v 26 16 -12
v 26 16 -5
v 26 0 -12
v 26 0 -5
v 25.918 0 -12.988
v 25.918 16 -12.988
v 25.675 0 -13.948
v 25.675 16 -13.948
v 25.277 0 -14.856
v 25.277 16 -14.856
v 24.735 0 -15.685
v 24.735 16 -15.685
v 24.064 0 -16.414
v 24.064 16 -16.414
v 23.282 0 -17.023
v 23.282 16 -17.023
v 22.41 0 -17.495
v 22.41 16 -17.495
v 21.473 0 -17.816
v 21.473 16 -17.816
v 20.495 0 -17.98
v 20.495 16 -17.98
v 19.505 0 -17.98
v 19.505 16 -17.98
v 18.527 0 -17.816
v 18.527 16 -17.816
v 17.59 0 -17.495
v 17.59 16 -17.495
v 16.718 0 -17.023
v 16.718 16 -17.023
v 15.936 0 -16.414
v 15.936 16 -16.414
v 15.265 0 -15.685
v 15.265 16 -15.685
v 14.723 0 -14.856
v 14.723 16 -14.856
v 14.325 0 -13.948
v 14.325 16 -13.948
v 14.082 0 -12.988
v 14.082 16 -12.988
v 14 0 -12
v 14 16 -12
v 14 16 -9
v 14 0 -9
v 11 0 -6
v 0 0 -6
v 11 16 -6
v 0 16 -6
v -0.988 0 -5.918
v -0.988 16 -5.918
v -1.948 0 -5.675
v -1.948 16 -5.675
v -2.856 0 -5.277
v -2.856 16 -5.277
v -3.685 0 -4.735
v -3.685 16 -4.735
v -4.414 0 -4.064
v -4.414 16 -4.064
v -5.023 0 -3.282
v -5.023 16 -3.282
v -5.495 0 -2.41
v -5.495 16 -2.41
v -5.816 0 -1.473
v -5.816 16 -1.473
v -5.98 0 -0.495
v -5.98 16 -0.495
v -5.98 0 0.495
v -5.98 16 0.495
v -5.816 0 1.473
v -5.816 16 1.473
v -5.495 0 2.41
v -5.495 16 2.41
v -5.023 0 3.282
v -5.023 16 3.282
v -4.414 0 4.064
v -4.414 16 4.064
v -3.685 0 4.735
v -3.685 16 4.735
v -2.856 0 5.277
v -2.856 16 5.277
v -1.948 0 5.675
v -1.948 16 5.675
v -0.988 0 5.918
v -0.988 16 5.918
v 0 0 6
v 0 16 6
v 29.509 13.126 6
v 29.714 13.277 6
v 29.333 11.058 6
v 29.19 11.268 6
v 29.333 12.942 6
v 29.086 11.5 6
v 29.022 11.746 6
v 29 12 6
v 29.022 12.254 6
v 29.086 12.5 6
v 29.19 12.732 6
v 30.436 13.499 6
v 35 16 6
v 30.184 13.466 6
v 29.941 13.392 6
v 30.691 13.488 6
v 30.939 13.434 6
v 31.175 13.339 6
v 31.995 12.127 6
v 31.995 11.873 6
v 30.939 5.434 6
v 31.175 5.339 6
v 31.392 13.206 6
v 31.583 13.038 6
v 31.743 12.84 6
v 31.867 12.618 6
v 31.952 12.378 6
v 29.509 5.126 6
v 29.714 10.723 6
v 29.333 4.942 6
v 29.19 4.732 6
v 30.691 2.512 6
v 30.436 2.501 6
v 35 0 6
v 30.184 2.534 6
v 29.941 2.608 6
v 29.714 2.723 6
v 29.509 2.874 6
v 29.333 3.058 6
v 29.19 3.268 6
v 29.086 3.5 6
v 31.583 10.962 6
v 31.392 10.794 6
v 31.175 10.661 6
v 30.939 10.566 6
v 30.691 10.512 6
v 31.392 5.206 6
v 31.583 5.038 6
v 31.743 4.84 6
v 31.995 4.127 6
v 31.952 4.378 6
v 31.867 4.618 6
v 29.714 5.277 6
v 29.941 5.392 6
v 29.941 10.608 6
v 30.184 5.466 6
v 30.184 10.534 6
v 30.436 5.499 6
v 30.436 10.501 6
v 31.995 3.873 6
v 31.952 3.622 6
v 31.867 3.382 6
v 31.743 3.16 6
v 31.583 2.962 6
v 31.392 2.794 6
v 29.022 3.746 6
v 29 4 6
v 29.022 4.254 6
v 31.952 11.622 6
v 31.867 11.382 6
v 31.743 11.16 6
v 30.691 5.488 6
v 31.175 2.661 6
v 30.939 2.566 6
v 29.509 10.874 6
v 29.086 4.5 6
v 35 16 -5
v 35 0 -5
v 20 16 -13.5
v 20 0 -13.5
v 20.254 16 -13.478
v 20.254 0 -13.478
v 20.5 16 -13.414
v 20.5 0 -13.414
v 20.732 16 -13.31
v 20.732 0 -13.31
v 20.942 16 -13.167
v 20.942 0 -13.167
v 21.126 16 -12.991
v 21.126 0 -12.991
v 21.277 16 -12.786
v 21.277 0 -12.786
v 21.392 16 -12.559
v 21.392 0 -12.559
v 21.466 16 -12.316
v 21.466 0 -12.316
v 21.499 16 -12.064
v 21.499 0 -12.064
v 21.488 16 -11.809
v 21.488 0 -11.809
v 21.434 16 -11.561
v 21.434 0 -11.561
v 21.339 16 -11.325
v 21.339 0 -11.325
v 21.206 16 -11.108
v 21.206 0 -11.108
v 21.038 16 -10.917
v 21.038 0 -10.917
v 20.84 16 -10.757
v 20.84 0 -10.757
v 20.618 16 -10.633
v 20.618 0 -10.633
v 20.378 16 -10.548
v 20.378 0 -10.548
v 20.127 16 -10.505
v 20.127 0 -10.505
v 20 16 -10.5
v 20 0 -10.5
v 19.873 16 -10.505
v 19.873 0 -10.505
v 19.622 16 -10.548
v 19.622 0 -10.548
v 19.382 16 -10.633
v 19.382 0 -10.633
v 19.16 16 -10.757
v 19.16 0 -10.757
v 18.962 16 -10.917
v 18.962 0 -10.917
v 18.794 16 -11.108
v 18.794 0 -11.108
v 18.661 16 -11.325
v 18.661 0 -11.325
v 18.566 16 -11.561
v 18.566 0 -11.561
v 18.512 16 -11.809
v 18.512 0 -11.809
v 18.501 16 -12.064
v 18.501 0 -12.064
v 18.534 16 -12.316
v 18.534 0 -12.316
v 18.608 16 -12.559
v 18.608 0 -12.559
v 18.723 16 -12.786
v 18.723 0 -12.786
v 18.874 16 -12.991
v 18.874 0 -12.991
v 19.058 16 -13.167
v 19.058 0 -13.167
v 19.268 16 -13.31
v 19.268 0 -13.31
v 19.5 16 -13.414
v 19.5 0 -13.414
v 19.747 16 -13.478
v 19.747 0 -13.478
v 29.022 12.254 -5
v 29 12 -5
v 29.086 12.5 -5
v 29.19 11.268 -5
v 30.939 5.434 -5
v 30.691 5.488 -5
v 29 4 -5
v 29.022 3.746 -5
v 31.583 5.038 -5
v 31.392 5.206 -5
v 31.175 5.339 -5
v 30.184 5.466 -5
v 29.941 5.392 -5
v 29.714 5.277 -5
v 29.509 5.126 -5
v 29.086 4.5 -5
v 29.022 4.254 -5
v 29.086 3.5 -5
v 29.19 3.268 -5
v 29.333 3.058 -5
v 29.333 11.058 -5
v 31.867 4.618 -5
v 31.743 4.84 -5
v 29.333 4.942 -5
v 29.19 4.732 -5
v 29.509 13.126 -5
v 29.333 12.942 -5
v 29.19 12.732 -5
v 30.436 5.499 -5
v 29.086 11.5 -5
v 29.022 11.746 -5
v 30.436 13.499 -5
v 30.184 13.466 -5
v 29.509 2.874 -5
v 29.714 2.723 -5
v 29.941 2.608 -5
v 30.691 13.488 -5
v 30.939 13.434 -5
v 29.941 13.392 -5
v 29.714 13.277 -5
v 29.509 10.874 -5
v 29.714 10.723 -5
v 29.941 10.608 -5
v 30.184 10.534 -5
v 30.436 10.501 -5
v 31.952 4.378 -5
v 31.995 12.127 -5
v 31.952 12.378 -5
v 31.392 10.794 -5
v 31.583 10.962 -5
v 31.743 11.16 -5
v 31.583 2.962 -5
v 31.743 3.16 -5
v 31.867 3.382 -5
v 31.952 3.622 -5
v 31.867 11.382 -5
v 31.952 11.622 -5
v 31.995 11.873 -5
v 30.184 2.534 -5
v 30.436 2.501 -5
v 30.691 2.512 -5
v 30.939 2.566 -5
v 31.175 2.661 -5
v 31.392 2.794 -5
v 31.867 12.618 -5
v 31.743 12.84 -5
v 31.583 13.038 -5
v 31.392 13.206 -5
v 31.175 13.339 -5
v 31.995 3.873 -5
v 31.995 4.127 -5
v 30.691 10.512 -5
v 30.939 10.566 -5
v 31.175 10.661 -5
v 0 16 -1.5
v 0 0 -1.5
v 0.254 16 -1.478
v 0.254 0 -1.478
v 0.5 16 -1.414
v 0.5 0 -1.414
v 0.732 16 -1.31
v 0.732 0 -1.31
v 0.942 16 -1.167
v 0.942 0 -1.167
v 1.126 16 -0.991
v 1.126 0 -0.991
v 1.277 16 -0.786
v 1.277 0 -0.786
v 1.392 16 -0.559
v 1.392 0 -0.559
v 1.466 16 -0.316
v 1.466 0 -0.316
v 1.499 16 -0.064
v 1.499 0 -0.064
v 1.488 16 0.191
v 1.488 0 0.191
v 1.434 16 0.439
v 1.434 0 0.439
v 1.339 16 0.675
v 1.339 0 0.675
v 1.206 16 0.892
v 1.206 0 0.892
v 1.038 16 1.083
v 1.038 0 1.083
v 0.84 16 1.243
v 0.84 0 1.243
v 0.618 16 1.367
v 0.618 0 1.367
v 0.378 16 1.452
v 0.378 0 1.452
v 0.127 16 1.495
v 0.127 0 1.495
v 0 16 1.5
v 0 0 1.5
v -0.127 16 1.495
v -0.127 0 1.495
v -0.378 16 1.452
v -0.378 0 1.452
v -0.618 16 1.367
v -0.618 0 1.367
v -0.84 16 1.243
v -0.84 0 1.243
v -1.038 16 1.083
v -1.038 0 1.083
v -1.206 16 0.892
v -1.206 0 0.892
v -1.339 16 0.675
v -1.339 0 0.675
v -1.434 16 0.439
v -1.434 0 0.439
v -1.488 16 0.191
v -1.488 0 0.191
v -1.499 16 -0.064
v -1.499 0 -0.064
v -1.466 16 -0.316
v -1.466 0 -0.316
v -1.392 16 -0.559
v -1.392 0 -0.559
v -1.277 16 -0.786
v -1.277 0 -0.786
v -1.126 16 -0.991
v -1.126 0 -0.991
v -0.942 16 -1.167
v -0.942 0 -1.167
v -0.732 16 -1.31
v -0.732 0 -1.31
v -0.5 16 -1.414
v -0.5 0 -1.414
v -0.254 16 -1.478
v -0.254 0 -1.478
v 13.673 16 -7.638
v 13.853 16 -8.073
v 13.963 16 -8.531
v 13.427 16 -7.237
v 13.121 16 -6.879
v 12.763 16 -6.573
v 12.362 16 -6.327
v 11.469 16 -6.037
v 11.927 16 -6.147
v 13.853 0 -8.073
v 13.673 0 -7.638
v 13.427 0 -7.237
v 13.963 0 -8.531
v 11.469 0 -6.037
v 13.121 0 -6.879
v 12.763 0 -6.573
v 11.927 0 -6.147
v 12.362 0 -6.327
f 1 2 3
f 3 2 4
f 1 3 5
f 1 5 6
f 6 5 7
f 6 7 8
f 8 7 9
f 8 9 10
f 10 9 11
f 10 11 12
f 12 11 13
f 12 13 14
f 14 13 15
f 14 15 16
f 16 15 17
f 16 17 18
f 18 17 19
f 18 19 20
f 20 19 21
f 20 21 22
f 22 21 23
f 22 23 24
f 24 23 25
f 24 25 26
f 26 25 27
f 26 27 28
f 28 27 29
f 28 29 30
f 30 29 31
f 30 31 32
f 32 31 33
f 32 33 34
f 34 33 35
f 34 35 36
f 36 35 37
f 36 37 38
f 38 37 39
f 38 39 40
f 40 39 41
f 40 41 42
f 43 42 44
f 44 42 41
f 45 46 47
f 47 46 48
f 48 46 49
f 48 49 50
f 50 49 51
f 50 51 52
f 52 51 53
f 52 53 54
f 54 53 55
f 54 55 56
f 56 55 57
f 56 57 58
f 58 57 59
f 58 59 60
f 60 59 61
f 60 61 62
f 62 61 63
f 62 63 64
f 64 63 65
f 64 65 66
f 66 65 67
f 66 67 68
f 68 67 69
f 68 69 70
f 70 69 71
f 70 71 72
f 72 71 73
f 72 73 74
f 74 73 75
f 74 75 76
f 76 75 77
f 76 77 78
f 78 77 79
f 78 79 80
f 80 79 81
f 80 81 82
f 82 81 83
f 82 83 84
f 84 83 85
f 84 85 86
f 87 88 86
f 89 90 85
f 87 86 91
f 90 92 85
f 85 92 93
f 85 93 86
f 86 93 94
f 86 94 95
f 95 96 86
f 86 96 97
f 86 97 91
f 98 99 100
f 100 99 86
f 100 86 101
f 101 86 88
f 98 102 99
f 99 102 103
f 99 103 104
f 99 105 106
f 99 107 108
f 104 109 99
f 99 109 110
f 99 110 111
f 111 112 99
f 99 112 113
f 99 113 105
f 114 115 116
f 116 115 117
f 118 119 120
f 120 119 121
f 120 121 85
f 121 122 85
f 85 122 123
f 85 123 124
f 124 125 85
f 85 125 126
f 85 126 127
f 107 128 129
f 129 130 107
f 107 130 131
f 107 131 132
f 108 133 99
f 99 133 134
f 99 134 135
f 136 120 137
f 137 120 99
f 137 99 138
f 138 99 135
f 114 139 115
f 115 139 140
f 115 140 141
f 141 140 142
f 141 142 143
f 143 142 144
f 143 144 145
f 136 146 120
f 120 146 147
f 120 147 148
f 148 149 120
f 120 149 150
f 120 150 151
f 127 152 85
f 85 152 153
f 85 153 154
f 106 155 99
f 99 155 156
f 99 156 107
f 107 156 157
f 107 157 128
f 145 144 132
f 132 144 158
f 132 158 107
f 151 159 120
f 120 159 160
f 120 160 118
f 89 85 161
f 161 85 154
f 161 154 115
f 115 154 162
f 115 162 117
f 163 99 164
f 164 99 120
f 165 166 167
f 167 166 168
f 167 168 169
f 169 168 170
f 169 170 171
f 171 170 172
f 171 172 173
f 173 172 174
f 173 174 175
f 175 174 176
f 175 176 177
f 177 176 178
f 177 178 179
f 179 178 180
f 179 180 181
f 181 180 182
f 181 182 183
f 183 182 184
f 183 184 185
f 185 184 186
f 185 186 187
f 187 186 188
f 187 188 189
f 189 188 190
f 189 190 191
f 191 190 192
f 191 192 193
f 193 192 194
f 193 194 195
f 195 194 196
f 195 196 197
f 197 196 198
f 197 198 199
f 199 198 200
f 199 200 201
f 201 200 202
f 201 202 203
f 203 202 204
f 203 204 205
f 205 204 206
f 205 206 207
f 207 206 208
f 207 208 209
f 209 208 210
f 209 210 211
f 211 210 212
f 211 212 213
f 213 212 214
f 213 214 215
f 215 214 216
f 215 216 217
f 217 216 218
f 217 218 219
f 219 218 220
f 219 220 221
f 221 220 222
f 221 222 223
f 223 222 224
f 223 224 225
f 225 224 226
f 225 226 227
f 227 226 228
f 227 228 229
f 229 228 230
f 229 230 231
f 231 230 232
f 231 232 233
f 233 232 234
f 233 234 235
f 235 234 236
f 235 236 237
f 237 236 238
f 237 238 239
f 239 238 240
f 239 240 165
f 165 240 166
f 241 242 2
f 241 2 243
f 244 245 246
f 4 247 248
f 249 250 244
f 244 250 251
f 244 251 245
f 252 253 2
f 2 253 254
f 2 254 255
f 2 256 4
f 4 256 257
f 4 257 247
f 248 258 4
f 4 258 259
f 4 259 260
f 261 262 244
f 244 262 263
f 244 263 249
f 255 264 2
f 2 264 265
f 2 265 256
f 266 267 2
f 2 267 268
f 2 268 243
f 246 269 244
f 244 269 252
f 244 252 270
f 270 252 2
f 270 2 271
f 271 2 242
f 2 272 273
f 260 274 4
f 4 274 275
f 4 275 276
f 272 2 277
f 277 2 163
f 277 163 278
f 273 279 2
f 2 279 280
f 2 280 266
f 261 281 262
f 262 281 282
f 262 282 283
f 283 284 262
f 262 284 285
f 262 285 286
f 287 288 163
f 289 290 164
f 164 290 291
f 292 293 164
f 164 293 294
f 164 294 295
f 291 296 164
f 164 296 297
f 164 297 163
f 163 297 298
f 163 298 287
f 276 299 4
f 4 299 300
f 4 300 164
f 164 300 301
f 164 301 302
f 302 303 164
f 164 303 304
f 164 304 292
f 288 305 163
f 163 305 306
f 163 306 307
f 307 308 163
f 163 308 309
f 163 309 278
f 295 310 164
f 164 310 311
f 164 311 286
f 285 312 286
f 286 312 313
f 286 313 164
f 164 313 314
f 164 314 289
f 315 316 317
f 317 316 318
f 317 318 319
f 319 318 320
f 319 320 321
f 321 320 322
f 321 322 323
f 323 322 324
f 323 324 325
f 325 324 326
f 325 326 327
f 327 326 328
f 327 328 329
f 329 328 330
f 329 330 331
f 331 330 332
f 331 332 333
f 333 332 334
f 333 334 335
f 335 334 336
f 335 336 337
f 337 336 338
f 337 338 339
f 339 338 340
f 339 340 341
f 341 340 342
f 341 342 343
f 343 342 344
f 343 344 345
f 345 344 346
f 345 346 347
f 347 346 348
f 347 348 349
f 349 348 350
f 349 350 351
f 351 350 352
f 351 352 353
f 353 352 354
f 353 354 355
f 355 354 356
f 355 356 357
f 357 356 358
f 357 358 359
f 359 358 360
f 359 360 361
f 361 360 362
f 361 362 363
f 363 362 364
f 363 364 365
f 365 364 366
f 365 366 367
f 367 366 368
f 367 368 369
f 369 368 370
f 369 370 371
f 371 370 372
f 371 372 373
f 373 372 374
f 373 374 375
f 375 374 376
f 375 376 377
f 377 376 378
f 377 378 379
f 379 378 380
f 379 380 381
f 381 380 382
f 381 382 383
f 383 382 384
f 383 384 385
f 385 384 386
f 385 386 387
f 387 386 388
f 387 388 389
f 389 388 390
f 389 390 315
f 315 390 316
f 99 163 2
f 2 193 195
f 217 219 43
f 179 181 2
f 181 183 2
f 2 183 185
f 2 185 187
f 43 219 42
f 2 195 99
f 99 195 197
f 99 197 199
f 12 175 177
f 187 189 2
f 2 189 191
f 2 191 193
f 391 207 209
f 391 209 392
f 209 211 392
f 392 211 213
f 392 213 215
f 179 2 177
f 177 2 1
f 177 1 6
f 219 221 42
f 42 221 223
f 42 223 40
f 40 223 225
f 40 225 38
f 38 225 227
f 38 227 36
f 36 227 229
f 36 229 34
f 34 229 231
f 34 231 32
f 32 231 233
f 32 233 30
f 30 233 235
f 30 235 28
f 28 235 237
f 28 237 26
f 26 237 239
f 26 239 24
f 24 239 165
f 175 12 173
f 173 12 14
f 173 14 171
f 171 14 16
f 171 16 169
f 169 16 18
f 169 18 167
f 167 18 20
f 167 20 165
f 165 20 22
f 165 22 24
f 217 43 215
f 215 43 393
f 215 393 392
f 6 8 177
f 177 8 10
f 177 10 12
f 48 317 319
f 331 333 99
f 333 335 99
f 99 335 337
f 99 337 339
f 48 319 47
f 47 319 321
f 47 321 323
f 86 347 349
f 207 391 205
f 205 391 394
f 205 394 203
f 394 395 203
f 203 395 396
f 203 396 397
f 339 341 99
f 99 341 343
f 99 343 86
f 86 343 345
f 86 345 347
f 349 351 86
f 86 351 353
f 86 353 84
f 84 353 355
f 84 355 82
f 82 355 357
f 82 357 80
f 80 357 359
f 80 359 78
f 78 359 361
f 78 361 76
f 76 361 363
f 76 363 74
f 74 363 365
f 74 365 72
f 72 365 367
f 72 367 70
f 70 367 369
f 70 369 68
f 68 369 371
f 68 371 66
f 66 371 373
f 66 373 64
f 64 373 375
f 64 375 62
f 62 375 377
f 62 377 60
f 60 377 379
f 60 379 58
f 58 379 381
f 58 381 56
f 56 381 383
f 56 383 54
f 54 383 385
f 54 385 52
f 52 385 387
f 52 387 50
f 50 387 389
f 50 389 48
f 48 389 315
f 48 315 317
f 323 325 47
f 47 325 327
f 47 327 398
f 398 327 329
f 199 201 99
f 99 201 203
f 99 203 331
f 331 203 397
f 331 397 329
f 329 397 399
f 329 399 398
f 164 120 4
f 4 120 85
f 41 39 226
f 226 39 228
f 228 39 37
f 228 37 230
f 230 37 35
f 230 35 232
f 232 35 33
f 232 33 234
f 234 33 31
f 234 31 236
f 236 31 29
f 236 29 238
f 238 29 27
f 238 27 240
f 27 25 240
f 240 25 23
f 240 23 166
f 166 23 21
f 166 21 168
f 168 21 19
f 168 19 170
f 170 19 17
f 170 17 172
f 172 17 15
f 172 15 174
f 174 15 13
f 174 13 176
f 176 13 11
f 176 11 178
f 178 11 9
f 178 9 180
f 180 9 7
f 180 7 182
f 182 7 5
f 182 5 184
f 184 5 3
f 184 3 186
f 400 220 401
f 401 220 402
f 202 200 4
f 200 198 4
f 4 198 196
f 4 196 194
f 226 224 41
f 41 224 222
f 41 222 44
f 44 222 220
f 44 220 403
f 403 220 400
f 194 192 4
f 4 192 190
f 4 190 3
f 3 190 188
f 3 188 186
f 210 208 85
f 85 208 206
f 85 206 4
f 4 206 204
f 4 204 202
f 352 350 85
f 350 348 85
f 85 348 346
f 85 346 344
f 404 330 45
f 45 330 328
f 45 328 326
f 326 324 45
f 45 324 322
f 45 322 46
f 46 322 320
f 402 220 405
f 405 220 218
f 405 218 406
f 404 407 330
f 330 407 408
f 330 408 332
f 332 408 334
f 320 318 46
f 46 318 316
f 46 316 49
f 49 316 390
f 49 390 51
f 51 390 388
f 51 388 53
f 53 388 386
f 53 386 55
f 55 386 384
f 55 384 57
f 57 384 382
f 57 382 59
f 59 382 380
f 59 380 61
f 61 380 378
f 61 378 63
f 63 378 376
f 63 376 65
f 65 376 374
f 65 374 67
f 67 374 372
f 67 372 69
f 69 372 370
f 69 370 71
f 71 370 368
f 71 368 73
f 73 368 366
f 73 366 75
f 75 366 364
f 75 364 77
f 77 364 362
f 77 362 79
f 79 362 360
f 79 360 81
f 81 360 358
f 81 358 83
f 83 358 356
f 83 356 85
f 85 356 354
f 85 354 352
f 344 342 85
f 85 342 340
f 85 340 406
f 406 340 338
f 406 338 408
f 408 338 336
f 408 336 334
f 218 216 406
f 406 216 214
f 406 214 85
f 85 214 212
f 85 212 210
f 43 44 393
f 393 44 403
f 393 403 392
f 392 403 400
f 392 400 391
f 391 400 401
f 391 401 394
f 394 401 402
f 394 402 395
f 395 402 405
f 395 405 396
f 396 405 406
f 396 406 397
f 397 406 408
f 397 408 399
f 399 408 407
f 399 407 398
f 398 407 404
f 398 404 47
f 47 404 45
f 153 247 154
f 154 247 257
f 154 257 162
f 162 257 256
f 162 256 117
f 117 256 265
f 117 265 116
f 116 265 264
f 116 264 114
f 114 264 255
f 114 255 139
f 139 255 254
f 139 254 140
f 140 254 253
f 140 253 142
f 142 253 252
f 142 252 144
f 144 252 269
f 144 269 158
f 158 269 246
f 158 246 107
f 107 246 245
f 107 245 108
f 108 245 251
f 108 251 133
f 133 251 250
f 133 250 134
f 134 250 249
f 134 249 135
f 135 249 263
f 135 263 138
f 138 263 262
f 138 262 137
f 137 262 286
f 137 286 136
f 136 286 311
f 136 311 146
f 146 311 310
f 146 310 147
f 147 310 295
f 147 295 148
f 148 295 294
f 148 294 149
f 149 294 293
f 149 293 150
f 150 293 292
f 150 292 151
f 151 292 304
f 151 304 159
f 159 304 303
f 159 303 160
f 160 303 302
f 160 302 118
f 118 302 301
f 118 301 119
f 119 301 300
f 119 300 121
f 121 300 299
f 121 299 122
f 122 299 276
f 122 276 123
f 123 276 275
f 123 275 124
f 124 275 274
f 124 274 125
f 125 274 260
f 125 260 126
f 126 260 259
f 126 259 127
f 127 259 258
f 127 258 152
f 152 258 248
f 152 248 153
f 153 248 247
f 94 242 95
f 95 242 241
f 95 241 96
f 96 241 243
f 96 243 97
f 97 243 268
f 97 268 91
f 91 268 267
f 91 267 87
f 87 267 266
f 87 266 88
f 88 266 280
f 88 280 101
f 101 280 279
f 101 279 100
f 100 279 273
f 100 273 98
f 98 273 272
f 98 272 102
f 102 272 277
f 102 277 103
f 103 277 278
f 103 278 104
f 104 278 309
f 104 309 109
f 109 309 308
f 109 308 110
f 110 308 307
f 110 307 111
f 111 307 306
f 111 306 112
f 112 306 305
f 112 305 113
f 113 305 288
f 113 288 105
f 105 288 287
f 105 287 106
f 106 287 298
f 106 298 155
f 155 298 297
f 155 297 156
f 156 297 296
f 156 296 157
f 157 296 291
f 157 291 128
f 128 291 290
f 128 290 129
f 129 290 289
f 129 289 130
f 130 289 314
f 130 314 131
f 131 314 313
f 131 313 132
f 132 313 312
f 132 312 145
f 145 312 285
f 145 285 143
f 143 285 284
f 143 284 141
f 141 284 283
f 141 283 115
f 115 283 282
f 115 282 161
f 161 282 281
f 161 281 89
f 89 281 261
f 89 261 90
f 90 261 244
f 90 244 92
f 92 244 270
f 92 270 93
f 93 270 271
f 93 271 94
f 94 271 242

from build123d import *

# Parameters (mm, degrees)
SKETCH3_R           = 6
SKETCH3_R_2         = 1.5
BOSS_EXTRUDE1_DEPTH = 16
FILLET1_R           = 3
SKETCH4_R           = 1.5
CUT_EXTRUDE1_DEPTH  = 41.620192023


with BuildPart() as part:
    # Sketch3 → Boss-Extrude1 (new body)
    # profile 1 of 5: a face of its own
    with BuildSketch(Plane(origin=(0, 0, 0), x_dir=(1, 0, 0), z_dir=(0, 1, 0))):
        with BuildLine():
            Line((14, 12), (14, 6))
            Line((14, 6), (20, 6))
            ThreePointArc((20, 6), (15.757359313, 7.757359313), (14, 12))
        make_face()
    # profile 2 of 5: a face of its own
    with BuildSketch(Plane(origin=(0, 0, 0), x_dir=(1, 0, 0), z_dir=(0, 1, 0))):
        with Locations((20, 12)):
            Circle(SKETCH3_R)
        with Locations(Location((20, 12, 0), (0, 0, 270))):
            Circle(SKETCH3_R_2, mode=Mode.SUBTRACT)
    # profile 3 of 5: a face of its own
    with BuildSketch(Plane(origin=(0, 0, 0), x_dir=(1, 0, 0), z_dir=(0, 1, 0))):
        with BuildLine():
            Line((14, 6), (0, 6))
            ThreePointArc((0, 6), (4.242640687, 4.242640687), (6, 0))
            ThreePointArc((6, 0), (4.242640687, -4.242640687), (0, -6))
            Line((0, -6), (26, -6))
            Line((26, -6), (26, 5))
            Line((26, 5), (26, 12))
            ThreePointArc((26, 12), (24.242640687, 7.757359313), (20, 6))
            Line((20, 6), (14, 6))
        make_face()
    # profile 4 of 5: a face of its own
    with BuildSketch(Plane(origin=(0, 0, 0), x_dir=(1, 0, 0), z_dir=(0, 1, 0))):
        Circle(SKETCH3_R)
        with Locations(Location((0, 0, 0), (0, 0, 270))):
            Circle(SKETCH3_R_2, mode=Mode.SUBTRACT)
    # profile 5 of 5: a face of its own
    with BuildSketch(Plane(origin=(0, 0, 0), x_dir=(1, 0, 0), z_dir=(0, 1, 0))):
        Polygon((26, 5), (26, -6), (26.875327872, -6), (35, -6), (35, 5), align=None)
    extrude(amount=BOSS_EXTRUDE1_DEPTH)

    # Fillet1
    fillet1_edges = [part.edges().sort_by_distance(p)[0] for p in [
        (14, 8, -6),
    ]]
    fillet(fillet1_edges, radius=FILLET1_R)

    # Sketch4 → Cut-Extrude1 (cut, through all)
    with BuildSketch(Plane(origin=(0, 0, -5), x_dir=(-1, 0, 0), z_dir=(0, 0, -1))):
        with Locations((-30.5, 12)):
            Circle(SKETCH4_R)
        with Locations((-30.5, 4)):
            Circle(SKETCH4_R)
    extrude(amount=-CUT_EXTRUDE1_DEPTH, mode=Mode.SUBTRACT)


solid = part.part
